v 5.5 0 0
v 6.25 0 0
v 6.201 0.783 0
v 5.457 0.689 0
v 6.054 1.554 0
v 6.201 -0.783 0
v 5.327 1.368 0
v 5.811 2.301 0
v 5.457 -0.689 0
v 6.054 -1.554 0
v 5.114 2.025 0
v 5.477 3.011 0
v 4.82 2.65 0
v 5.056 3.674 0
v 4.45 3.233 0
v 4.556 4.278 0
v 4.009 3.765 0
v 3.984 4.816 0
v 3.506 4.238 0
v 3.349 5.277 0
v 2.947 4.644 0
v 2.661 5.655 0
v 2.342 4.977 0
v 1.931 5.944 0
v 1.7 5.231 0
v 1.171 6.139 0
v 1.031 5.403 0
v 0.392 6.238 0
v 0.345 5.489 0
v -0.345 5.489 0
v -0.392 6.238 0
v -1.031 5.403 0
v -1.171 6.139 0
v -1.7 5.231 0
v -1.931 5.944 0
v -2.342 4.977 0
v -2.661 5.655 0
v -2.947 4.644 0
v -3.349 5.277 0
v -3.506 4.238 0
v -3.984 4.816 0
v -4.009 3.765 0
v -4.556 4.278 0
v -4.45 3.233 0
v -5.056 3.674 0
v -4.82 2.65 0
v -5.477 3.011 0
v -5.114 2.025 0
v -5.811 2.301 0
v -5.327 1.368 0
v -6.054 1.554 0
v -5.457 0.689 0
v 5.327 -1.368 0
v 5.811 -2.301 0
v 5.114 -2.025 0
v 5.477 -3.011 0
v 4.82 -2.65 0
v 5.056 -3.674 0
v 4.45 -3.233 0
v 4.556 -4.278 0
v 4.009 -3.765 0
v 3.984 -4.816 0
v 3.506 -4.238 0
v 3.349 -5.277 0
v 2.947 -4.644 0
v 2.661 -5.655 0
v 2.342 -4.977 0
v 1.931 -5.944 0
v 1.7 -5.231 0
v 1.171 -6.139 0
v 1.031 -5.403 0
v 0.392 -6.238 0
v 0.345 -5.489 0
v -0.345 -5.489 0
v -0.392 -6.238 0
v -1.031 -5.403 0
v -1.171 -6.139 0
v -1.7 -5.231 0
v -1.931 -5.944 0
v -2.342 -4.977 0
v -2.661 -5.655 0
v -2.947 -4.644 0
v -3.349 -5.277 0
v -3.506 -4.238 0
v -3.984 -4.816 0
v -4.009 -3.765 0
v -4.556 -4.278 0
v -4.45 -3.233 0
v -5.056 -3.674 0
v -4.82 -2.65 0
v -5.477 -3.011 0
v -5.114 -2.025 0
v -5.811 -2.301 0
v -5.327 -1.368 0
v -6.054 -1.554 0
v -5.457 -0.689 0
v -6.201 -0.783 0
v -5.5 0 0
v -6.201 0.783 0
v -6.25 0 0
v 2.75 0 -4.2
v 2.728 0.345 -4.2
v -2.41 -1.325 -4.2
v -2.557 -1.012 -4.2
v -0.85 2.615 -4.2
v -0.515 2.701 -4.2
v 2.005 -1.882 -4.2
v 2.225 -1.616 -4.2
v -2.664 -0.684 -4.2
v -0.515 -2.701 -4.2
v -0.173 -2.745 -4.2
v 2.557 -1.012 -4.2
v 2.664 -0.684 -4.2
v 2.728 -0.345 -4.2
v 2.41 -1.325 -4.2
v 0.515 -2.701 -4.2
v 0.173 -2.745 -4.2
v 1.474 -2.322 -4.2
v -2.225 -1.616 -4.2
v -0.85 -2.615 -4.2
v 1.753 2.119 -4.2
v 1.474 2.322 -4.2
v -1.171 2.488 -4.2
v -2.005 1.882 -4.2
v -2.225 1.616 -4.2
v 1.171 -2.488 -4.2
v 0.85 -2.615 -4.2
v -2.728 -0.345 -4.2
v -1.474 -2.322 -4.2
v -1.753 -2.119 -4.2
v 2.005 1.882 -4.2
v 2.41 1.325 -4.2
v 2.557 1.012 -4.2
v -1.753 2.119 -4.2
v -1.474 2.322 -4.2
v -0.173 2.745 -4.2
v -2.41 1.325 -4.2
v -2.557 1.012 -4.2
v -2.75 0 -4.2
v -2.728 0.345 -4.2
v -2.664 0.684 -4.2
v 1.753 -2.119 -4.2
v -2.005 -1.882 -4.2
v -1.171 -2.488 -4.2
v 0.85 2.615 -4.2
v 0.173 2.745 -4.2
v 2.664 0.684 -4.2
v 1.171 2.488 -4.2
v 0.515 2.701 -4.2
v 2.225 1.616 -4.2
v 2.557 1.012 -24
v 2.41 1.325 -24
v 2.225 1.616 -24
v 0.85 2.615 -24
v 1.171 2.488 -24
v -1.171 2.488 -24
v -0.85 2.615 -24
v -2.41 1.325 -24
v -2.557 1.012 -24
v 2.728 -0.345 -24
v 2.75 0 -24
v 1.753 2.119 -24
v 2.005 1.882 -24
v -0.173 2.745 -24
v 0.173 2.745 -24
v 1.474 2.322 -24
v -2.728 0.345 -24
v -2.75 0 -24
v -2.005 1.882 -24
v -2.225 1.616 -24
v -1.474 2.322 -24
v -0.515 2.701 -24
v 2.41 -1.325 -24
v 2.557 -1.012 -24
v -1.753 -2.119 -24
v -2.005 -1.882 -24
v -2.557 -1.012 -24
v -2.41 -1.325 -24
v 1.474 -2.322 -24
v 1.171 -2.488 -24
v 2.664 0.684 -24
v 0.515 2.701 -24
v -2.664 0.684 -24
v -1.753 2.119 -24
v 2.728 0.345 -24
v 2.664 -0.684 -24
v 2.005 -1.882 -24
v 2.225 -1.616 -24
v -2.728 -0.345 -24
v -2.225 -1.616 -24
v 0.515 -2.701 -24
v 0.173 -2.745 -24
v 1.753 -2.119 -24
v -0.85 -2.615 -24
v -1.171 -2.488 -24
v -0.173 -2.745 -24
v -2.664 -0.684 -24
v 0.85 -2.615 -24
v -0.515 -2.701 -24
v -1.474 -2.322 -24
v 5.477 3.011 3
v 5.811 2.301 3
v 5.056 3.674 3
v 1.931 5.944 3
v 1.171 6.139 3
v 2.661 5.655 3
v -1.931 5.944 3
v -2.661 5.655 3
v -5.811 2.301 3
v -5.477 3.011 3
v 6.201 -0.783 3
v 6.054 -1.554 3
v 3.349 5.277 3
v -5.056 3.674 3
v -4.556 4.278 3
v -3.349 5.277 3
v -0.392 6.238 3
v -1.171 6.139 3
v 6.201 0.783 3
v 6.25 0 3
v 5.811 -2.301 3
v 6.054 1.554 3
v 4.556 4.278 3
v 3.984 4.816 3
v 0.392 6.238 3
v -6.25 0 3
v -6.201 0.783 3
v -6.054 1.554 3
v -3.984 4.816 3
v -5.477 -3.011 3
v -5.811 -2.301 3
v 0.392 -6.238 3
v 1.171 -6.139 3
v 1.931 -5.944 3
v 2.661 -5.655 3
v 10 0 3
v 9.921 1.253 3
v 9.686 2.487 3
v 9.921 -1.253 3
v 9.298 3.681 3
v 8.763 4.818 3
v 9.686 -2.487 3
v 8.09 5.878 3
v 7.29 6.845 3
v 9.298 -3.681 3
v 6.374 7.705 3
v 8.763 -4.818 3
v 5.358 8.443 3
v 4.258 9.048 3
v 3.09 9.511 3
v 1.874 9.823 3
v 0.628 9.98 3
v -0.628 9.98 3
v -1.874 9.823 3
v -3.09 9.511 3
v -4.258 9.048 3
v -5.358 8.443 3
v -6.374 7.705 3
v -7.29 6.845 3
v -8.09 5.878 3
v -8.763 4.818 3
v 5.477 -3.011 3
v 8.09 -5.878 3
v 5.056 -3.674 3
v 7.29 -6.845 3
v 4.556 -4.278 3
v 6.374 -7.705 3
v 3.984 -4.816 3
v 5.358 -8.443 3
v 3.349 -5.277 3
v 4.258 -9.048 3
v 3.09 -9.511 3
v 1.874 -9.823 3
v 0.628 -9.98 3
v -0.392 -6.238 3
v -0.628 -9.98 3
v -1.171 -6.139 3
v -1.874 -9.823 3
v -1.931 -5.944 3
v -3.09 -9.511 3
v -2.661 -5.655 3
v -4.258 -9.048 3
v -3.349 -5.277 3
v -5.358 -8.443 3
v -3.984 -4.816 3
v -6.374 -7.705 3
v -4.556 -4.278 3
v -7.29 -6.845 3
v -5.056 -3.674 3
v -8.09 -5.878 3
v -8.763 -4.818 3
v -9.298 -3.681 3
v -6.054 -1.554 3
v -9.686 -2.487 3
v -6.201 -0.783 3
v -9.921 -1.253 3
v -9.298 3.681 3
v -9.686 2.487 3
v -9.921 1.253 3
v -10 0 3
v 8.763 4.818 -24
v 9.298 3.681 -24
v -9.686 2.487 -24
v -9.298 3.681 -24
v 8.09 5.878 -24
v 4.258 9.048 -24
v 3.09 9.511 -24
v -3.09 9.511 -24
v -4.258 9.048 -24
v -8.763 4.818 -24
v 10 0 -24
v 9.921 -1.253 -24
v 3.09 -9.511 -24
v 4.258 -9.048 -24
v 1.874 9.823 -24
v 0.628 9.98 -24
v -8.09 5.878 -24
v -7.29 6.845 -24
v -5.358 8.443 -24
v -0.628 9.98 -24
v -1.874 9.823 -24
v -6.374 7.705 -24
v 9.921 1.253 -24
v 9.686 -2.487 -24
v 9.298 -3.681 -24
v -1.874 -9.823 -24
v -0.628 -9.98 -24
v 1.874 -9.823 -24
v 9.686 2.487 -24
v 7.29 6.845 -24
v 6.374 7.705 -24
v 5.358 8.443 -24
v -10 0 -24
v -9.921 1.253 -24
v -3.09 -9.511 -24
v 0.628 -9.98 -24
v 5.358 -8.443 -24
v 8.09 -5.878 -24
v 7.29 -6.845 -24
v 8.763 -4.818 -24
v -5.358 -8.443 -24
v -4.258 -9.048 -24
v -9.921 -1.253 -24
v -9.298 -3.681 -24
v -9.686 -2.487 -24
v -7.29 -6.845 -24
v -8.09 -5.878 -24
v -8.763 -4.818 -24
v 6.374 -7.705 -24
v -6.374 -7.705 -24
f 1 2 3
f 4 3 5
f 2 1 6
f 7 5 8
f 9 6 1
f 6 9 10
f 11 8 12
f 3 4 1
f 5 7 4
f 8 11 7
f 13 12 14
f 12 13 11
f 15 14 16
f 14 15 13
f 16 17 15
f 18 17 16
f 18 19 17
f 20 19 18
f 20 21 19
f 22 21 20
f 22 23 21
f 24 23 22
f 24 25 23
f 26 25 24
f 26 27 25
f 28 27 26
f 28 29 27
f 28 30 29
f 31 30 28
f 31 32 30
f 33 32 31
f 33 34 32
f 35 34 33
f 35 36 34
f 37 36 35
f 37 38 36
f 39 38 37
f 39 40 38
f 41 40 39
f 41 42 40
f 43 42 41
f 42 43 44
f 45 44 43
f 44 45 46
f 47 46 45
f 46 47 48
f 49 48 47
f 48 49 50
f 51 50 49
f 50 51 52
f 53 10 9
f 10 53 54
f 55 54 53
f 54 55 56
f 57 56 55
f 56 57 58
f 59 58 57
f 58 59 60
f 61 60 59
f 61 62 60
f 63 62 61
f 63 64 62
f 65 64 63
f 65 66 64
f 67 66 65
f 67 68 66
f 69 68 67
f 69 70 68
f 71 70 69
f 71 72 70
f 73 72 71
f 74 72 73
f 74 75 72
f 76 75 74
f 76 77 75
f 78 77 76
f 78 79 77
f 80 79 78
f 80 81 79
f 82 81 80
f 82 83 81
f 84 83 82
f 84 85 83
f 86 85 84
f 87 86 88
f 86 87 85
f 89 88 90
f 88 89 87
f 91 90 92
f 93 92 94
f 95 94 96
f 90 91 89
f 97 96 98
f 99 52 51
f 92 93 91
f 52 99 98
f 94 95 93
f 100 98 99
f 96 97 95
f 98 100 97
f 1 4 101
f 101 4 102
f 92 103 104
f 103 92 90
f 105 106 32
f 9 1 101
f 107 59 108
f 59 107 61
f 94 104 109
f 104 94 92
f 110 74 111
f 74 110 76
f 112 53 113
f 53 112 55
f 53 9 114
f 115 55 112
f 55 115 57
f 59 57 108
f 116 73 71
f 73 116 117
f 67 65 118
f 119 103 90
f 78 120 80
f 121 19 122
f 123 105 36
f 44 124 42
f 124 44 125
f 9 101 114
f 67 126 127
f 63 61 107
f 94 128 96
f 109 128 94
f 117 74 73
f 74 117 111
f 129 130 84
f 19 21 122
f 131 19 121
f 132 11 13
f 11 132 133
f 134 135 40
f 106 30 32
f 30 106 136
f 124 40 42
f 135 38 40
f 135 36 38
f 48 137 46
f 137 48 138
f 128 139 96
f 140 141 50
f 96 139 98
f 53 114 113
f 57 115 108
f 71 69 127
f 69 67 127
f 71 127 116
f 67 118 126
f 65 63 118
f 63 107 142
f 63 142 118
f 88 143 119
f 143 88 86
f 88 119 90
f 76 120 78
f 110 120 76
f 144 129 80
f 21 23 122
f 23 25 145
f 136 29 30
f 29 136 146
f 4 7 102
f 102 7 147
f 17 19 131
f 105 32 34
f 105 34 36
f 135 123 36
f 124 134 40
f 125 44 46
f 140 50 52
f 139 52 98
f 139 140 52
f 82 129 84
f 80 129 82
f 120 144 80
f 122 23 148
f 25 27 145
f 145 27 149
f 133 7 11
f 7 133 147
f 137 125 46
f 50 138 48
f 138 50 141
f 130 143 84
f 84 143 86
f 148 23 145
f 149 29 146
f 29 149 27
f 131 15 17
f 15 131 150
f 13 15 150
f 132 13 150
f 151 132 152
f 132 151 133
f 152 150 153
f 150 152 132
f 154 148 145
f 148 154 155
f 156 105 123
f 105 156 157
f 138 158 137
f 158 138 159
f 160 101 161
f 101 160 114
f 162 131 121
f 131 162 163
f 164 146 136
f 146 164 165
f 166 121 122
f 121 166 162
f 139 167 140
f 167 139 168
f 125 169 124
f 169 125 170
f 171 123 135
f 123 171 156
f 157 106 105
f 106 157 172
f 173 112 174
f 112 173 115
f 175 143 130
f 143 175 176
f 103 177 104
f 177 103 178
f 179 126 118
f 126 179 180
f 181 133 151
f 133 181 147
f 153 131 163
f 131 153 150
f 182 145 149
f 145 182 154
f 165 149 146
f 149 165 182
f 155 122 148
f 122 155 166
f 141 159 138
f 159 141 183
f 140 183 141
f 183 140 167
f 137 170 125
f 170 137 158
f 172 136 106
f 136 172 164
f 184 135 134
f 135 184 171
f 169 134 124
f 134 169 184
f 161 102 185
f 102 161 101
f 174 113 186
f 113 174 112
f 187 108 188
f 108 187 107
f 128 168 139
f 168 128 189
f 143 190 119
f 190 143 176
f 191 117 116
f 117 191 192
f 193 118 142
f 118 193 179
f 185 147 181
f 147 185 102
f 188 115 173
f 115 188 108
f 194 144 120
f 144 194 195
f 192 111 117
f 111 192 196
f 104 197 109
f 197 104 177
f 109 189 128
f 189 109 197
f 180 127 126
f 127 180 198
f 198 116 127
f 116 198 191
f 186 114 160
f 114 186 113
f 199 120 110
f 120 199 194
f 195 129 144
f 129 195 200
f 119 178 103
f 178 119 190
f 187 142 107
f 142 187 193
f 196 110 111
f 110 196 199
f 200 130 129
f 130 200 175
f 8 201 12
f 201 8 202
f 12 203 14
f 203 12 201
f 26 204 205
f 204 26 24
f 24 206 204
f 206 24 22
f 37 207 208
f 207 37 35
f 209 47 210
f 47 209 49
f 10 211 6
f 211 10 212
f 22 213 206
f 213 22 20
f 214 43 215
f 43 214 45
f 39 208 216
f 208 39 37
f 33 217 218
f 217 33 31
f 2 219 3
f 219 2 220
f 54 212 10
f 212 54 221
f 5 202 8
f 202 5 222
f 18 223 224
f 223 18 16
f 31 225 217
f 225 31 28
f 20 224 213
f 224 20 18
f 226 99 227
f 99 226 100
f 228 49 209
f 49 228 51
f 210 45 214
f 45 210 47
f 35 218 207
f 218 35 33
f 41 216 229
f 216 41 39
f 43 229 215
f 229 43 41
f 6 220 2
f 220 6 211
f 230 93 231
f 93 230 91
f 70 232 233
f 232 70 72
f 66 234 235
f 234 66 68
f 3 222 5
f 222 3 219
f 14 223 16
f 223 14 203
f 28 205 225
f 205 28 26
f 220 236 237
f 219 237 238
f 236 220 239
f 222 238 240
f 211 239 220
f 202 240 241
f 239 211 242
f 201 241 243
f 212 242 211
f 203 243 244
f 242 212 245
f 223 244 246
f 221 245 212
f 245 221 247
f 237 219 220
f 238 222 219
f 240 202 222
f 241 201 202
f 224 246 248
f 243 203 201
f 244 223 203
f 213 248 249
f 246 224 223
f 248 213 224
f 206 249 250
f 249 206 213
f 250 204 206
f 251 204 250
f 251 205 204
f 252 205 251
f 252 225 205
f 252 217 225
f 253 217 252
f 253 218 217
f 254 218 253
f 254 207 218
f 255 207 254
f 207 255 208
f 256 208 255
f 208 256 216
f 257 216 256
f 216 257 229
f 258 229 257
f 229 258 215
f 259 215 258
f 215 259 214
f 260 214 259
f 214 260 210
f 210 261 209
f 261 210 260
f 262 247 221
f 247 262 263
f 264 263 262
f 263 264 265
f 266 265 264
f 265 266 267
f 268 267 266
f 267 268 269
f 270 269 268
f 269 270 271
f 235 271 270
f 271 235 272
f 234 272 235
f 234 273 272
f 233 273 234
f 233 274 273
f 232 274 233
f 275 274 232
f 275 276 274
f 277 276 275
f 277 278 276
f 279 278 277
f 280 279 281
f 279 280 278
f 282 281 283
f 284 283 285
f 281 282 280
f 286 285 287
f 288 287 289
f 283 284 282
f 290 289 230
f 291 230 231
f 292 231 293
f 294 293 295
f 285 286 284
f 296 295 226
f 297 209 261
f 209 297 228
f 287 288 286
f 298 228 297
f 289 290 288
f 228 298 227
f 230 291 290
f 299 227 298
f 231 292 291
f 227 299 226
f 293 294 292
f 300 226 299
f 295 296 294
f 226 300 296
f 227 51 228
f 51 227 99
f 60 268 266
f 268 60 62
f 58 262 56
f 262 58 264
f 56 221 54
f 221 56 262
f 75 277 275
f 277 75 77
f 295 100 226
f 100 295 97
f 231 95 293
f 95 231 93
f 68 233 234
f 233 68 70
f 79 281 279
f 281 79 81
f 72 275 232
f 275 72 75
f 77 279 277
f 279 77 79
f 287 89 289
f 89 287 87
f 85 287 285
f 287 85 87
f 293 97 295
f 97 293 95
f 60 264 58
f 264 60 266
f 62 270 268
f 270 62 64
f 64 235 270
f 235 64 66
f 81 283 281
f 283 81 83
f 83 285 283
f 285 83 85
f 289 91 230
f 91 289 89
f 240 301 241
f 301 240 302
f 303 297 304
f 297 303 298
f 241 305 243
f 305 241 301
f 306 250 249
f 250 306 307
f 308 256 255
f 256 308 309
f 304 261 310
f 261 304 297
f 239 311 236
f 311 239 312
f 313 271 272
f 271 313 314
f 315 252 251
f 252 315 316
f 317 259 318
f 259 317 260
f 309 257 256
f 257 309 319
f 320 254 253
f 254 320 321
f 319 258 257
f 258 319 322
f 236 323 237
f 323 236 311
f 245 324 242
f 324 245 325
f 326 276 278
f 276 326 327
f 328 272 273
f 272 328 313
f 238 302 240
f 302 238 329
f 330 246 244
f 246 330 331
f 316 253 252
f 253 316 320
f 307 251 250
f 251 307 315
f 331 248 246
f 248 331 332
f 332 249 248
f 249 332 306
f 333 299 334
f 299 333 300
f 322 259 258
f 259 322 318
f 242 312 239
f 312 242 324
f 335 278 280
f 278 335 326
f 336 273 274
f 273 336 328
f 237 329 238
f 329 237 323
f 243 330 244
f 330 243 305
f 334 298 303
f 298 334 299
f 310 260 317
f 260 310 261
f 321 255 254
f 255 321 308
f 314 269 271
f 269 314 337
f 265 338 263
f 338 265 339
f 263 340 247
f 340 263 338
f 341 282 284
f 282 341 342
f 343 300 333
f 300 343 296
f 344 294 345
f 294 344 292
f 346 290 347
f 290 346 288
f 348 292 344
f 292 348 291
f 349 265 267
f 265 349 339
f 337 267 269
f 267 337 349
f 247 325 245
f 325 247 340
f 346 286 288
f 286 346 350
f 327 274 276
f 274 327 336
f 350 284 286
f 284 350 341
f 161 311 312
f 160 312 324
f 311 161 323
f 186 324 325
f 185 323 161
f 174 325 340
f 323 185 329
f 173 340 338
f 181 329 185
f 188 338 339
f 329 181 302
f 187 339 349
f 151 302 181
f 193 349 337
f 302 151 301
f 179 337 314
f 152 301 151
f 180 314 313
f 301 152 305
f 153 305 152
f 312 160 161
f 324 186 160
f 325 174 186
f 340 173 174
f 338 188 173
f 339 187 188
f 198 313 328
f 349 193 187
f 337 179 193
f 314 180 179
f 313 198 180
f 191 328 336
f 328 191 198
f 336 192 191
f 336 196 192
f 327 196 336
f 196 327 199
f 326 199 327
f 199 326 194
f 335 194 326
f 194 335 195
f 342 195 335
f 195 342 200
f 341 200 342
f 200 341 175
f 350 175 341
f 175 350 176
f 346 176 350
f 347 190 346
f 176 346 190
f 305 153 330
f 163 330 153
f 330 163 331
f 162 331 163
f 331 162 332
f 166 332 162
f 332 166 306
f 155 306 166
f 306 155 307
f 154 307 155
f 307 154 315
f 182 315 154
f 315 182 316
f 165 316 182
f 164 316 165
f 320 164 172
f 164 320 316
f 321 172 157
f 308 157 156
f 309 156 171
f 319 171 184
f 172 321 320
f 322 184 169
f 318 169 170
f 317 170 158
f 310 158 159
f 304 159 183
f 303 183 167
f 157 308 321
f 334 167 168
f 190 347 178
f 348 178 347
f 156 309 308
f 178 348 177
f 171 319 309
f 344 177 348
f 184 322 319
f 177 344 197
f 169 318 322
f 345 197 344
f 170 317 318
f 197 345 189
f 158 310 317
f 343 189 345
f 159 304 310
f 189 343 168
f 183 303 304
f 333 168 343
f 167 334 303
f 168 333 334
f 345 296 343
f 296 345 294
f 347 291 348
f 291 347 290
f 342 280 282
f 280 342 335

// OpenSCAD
$fn = 50;


difference() {
	union() {
		translate(v = [0, 0, -24.0000000000]) {
			cylinder(h = 27, r = 10.0000000000);
		}
	}
	union() {
		translate(v = [0, 0, 0]) {
			rotate(a = [0, 0, 0]) {
				difference() {
					union() {
						translate(v = [0, 0, -27.0000000000]) {
							cylinder(h = 27, r = 2.2500000000);
						}
						translate(v = [0, 0, -4.2000000000]) {
							cylinder(h = 4.2000000000, r1 = 2.7500000000, r2 = 5.5000000000);
						}
						translate(v = [0, 0, -27.0000000000]) {
							cylinder(h = 27, r = 2.7500000000);
						}
						translate(v = [0, 0, -27.0000000000]) {
							cylinder(h = 27, r = 2.2500000000);
						}
					}
					union();
				}
			}
		}
		#cylinder(h = 3, r = 6.2500000000);
	}
}
